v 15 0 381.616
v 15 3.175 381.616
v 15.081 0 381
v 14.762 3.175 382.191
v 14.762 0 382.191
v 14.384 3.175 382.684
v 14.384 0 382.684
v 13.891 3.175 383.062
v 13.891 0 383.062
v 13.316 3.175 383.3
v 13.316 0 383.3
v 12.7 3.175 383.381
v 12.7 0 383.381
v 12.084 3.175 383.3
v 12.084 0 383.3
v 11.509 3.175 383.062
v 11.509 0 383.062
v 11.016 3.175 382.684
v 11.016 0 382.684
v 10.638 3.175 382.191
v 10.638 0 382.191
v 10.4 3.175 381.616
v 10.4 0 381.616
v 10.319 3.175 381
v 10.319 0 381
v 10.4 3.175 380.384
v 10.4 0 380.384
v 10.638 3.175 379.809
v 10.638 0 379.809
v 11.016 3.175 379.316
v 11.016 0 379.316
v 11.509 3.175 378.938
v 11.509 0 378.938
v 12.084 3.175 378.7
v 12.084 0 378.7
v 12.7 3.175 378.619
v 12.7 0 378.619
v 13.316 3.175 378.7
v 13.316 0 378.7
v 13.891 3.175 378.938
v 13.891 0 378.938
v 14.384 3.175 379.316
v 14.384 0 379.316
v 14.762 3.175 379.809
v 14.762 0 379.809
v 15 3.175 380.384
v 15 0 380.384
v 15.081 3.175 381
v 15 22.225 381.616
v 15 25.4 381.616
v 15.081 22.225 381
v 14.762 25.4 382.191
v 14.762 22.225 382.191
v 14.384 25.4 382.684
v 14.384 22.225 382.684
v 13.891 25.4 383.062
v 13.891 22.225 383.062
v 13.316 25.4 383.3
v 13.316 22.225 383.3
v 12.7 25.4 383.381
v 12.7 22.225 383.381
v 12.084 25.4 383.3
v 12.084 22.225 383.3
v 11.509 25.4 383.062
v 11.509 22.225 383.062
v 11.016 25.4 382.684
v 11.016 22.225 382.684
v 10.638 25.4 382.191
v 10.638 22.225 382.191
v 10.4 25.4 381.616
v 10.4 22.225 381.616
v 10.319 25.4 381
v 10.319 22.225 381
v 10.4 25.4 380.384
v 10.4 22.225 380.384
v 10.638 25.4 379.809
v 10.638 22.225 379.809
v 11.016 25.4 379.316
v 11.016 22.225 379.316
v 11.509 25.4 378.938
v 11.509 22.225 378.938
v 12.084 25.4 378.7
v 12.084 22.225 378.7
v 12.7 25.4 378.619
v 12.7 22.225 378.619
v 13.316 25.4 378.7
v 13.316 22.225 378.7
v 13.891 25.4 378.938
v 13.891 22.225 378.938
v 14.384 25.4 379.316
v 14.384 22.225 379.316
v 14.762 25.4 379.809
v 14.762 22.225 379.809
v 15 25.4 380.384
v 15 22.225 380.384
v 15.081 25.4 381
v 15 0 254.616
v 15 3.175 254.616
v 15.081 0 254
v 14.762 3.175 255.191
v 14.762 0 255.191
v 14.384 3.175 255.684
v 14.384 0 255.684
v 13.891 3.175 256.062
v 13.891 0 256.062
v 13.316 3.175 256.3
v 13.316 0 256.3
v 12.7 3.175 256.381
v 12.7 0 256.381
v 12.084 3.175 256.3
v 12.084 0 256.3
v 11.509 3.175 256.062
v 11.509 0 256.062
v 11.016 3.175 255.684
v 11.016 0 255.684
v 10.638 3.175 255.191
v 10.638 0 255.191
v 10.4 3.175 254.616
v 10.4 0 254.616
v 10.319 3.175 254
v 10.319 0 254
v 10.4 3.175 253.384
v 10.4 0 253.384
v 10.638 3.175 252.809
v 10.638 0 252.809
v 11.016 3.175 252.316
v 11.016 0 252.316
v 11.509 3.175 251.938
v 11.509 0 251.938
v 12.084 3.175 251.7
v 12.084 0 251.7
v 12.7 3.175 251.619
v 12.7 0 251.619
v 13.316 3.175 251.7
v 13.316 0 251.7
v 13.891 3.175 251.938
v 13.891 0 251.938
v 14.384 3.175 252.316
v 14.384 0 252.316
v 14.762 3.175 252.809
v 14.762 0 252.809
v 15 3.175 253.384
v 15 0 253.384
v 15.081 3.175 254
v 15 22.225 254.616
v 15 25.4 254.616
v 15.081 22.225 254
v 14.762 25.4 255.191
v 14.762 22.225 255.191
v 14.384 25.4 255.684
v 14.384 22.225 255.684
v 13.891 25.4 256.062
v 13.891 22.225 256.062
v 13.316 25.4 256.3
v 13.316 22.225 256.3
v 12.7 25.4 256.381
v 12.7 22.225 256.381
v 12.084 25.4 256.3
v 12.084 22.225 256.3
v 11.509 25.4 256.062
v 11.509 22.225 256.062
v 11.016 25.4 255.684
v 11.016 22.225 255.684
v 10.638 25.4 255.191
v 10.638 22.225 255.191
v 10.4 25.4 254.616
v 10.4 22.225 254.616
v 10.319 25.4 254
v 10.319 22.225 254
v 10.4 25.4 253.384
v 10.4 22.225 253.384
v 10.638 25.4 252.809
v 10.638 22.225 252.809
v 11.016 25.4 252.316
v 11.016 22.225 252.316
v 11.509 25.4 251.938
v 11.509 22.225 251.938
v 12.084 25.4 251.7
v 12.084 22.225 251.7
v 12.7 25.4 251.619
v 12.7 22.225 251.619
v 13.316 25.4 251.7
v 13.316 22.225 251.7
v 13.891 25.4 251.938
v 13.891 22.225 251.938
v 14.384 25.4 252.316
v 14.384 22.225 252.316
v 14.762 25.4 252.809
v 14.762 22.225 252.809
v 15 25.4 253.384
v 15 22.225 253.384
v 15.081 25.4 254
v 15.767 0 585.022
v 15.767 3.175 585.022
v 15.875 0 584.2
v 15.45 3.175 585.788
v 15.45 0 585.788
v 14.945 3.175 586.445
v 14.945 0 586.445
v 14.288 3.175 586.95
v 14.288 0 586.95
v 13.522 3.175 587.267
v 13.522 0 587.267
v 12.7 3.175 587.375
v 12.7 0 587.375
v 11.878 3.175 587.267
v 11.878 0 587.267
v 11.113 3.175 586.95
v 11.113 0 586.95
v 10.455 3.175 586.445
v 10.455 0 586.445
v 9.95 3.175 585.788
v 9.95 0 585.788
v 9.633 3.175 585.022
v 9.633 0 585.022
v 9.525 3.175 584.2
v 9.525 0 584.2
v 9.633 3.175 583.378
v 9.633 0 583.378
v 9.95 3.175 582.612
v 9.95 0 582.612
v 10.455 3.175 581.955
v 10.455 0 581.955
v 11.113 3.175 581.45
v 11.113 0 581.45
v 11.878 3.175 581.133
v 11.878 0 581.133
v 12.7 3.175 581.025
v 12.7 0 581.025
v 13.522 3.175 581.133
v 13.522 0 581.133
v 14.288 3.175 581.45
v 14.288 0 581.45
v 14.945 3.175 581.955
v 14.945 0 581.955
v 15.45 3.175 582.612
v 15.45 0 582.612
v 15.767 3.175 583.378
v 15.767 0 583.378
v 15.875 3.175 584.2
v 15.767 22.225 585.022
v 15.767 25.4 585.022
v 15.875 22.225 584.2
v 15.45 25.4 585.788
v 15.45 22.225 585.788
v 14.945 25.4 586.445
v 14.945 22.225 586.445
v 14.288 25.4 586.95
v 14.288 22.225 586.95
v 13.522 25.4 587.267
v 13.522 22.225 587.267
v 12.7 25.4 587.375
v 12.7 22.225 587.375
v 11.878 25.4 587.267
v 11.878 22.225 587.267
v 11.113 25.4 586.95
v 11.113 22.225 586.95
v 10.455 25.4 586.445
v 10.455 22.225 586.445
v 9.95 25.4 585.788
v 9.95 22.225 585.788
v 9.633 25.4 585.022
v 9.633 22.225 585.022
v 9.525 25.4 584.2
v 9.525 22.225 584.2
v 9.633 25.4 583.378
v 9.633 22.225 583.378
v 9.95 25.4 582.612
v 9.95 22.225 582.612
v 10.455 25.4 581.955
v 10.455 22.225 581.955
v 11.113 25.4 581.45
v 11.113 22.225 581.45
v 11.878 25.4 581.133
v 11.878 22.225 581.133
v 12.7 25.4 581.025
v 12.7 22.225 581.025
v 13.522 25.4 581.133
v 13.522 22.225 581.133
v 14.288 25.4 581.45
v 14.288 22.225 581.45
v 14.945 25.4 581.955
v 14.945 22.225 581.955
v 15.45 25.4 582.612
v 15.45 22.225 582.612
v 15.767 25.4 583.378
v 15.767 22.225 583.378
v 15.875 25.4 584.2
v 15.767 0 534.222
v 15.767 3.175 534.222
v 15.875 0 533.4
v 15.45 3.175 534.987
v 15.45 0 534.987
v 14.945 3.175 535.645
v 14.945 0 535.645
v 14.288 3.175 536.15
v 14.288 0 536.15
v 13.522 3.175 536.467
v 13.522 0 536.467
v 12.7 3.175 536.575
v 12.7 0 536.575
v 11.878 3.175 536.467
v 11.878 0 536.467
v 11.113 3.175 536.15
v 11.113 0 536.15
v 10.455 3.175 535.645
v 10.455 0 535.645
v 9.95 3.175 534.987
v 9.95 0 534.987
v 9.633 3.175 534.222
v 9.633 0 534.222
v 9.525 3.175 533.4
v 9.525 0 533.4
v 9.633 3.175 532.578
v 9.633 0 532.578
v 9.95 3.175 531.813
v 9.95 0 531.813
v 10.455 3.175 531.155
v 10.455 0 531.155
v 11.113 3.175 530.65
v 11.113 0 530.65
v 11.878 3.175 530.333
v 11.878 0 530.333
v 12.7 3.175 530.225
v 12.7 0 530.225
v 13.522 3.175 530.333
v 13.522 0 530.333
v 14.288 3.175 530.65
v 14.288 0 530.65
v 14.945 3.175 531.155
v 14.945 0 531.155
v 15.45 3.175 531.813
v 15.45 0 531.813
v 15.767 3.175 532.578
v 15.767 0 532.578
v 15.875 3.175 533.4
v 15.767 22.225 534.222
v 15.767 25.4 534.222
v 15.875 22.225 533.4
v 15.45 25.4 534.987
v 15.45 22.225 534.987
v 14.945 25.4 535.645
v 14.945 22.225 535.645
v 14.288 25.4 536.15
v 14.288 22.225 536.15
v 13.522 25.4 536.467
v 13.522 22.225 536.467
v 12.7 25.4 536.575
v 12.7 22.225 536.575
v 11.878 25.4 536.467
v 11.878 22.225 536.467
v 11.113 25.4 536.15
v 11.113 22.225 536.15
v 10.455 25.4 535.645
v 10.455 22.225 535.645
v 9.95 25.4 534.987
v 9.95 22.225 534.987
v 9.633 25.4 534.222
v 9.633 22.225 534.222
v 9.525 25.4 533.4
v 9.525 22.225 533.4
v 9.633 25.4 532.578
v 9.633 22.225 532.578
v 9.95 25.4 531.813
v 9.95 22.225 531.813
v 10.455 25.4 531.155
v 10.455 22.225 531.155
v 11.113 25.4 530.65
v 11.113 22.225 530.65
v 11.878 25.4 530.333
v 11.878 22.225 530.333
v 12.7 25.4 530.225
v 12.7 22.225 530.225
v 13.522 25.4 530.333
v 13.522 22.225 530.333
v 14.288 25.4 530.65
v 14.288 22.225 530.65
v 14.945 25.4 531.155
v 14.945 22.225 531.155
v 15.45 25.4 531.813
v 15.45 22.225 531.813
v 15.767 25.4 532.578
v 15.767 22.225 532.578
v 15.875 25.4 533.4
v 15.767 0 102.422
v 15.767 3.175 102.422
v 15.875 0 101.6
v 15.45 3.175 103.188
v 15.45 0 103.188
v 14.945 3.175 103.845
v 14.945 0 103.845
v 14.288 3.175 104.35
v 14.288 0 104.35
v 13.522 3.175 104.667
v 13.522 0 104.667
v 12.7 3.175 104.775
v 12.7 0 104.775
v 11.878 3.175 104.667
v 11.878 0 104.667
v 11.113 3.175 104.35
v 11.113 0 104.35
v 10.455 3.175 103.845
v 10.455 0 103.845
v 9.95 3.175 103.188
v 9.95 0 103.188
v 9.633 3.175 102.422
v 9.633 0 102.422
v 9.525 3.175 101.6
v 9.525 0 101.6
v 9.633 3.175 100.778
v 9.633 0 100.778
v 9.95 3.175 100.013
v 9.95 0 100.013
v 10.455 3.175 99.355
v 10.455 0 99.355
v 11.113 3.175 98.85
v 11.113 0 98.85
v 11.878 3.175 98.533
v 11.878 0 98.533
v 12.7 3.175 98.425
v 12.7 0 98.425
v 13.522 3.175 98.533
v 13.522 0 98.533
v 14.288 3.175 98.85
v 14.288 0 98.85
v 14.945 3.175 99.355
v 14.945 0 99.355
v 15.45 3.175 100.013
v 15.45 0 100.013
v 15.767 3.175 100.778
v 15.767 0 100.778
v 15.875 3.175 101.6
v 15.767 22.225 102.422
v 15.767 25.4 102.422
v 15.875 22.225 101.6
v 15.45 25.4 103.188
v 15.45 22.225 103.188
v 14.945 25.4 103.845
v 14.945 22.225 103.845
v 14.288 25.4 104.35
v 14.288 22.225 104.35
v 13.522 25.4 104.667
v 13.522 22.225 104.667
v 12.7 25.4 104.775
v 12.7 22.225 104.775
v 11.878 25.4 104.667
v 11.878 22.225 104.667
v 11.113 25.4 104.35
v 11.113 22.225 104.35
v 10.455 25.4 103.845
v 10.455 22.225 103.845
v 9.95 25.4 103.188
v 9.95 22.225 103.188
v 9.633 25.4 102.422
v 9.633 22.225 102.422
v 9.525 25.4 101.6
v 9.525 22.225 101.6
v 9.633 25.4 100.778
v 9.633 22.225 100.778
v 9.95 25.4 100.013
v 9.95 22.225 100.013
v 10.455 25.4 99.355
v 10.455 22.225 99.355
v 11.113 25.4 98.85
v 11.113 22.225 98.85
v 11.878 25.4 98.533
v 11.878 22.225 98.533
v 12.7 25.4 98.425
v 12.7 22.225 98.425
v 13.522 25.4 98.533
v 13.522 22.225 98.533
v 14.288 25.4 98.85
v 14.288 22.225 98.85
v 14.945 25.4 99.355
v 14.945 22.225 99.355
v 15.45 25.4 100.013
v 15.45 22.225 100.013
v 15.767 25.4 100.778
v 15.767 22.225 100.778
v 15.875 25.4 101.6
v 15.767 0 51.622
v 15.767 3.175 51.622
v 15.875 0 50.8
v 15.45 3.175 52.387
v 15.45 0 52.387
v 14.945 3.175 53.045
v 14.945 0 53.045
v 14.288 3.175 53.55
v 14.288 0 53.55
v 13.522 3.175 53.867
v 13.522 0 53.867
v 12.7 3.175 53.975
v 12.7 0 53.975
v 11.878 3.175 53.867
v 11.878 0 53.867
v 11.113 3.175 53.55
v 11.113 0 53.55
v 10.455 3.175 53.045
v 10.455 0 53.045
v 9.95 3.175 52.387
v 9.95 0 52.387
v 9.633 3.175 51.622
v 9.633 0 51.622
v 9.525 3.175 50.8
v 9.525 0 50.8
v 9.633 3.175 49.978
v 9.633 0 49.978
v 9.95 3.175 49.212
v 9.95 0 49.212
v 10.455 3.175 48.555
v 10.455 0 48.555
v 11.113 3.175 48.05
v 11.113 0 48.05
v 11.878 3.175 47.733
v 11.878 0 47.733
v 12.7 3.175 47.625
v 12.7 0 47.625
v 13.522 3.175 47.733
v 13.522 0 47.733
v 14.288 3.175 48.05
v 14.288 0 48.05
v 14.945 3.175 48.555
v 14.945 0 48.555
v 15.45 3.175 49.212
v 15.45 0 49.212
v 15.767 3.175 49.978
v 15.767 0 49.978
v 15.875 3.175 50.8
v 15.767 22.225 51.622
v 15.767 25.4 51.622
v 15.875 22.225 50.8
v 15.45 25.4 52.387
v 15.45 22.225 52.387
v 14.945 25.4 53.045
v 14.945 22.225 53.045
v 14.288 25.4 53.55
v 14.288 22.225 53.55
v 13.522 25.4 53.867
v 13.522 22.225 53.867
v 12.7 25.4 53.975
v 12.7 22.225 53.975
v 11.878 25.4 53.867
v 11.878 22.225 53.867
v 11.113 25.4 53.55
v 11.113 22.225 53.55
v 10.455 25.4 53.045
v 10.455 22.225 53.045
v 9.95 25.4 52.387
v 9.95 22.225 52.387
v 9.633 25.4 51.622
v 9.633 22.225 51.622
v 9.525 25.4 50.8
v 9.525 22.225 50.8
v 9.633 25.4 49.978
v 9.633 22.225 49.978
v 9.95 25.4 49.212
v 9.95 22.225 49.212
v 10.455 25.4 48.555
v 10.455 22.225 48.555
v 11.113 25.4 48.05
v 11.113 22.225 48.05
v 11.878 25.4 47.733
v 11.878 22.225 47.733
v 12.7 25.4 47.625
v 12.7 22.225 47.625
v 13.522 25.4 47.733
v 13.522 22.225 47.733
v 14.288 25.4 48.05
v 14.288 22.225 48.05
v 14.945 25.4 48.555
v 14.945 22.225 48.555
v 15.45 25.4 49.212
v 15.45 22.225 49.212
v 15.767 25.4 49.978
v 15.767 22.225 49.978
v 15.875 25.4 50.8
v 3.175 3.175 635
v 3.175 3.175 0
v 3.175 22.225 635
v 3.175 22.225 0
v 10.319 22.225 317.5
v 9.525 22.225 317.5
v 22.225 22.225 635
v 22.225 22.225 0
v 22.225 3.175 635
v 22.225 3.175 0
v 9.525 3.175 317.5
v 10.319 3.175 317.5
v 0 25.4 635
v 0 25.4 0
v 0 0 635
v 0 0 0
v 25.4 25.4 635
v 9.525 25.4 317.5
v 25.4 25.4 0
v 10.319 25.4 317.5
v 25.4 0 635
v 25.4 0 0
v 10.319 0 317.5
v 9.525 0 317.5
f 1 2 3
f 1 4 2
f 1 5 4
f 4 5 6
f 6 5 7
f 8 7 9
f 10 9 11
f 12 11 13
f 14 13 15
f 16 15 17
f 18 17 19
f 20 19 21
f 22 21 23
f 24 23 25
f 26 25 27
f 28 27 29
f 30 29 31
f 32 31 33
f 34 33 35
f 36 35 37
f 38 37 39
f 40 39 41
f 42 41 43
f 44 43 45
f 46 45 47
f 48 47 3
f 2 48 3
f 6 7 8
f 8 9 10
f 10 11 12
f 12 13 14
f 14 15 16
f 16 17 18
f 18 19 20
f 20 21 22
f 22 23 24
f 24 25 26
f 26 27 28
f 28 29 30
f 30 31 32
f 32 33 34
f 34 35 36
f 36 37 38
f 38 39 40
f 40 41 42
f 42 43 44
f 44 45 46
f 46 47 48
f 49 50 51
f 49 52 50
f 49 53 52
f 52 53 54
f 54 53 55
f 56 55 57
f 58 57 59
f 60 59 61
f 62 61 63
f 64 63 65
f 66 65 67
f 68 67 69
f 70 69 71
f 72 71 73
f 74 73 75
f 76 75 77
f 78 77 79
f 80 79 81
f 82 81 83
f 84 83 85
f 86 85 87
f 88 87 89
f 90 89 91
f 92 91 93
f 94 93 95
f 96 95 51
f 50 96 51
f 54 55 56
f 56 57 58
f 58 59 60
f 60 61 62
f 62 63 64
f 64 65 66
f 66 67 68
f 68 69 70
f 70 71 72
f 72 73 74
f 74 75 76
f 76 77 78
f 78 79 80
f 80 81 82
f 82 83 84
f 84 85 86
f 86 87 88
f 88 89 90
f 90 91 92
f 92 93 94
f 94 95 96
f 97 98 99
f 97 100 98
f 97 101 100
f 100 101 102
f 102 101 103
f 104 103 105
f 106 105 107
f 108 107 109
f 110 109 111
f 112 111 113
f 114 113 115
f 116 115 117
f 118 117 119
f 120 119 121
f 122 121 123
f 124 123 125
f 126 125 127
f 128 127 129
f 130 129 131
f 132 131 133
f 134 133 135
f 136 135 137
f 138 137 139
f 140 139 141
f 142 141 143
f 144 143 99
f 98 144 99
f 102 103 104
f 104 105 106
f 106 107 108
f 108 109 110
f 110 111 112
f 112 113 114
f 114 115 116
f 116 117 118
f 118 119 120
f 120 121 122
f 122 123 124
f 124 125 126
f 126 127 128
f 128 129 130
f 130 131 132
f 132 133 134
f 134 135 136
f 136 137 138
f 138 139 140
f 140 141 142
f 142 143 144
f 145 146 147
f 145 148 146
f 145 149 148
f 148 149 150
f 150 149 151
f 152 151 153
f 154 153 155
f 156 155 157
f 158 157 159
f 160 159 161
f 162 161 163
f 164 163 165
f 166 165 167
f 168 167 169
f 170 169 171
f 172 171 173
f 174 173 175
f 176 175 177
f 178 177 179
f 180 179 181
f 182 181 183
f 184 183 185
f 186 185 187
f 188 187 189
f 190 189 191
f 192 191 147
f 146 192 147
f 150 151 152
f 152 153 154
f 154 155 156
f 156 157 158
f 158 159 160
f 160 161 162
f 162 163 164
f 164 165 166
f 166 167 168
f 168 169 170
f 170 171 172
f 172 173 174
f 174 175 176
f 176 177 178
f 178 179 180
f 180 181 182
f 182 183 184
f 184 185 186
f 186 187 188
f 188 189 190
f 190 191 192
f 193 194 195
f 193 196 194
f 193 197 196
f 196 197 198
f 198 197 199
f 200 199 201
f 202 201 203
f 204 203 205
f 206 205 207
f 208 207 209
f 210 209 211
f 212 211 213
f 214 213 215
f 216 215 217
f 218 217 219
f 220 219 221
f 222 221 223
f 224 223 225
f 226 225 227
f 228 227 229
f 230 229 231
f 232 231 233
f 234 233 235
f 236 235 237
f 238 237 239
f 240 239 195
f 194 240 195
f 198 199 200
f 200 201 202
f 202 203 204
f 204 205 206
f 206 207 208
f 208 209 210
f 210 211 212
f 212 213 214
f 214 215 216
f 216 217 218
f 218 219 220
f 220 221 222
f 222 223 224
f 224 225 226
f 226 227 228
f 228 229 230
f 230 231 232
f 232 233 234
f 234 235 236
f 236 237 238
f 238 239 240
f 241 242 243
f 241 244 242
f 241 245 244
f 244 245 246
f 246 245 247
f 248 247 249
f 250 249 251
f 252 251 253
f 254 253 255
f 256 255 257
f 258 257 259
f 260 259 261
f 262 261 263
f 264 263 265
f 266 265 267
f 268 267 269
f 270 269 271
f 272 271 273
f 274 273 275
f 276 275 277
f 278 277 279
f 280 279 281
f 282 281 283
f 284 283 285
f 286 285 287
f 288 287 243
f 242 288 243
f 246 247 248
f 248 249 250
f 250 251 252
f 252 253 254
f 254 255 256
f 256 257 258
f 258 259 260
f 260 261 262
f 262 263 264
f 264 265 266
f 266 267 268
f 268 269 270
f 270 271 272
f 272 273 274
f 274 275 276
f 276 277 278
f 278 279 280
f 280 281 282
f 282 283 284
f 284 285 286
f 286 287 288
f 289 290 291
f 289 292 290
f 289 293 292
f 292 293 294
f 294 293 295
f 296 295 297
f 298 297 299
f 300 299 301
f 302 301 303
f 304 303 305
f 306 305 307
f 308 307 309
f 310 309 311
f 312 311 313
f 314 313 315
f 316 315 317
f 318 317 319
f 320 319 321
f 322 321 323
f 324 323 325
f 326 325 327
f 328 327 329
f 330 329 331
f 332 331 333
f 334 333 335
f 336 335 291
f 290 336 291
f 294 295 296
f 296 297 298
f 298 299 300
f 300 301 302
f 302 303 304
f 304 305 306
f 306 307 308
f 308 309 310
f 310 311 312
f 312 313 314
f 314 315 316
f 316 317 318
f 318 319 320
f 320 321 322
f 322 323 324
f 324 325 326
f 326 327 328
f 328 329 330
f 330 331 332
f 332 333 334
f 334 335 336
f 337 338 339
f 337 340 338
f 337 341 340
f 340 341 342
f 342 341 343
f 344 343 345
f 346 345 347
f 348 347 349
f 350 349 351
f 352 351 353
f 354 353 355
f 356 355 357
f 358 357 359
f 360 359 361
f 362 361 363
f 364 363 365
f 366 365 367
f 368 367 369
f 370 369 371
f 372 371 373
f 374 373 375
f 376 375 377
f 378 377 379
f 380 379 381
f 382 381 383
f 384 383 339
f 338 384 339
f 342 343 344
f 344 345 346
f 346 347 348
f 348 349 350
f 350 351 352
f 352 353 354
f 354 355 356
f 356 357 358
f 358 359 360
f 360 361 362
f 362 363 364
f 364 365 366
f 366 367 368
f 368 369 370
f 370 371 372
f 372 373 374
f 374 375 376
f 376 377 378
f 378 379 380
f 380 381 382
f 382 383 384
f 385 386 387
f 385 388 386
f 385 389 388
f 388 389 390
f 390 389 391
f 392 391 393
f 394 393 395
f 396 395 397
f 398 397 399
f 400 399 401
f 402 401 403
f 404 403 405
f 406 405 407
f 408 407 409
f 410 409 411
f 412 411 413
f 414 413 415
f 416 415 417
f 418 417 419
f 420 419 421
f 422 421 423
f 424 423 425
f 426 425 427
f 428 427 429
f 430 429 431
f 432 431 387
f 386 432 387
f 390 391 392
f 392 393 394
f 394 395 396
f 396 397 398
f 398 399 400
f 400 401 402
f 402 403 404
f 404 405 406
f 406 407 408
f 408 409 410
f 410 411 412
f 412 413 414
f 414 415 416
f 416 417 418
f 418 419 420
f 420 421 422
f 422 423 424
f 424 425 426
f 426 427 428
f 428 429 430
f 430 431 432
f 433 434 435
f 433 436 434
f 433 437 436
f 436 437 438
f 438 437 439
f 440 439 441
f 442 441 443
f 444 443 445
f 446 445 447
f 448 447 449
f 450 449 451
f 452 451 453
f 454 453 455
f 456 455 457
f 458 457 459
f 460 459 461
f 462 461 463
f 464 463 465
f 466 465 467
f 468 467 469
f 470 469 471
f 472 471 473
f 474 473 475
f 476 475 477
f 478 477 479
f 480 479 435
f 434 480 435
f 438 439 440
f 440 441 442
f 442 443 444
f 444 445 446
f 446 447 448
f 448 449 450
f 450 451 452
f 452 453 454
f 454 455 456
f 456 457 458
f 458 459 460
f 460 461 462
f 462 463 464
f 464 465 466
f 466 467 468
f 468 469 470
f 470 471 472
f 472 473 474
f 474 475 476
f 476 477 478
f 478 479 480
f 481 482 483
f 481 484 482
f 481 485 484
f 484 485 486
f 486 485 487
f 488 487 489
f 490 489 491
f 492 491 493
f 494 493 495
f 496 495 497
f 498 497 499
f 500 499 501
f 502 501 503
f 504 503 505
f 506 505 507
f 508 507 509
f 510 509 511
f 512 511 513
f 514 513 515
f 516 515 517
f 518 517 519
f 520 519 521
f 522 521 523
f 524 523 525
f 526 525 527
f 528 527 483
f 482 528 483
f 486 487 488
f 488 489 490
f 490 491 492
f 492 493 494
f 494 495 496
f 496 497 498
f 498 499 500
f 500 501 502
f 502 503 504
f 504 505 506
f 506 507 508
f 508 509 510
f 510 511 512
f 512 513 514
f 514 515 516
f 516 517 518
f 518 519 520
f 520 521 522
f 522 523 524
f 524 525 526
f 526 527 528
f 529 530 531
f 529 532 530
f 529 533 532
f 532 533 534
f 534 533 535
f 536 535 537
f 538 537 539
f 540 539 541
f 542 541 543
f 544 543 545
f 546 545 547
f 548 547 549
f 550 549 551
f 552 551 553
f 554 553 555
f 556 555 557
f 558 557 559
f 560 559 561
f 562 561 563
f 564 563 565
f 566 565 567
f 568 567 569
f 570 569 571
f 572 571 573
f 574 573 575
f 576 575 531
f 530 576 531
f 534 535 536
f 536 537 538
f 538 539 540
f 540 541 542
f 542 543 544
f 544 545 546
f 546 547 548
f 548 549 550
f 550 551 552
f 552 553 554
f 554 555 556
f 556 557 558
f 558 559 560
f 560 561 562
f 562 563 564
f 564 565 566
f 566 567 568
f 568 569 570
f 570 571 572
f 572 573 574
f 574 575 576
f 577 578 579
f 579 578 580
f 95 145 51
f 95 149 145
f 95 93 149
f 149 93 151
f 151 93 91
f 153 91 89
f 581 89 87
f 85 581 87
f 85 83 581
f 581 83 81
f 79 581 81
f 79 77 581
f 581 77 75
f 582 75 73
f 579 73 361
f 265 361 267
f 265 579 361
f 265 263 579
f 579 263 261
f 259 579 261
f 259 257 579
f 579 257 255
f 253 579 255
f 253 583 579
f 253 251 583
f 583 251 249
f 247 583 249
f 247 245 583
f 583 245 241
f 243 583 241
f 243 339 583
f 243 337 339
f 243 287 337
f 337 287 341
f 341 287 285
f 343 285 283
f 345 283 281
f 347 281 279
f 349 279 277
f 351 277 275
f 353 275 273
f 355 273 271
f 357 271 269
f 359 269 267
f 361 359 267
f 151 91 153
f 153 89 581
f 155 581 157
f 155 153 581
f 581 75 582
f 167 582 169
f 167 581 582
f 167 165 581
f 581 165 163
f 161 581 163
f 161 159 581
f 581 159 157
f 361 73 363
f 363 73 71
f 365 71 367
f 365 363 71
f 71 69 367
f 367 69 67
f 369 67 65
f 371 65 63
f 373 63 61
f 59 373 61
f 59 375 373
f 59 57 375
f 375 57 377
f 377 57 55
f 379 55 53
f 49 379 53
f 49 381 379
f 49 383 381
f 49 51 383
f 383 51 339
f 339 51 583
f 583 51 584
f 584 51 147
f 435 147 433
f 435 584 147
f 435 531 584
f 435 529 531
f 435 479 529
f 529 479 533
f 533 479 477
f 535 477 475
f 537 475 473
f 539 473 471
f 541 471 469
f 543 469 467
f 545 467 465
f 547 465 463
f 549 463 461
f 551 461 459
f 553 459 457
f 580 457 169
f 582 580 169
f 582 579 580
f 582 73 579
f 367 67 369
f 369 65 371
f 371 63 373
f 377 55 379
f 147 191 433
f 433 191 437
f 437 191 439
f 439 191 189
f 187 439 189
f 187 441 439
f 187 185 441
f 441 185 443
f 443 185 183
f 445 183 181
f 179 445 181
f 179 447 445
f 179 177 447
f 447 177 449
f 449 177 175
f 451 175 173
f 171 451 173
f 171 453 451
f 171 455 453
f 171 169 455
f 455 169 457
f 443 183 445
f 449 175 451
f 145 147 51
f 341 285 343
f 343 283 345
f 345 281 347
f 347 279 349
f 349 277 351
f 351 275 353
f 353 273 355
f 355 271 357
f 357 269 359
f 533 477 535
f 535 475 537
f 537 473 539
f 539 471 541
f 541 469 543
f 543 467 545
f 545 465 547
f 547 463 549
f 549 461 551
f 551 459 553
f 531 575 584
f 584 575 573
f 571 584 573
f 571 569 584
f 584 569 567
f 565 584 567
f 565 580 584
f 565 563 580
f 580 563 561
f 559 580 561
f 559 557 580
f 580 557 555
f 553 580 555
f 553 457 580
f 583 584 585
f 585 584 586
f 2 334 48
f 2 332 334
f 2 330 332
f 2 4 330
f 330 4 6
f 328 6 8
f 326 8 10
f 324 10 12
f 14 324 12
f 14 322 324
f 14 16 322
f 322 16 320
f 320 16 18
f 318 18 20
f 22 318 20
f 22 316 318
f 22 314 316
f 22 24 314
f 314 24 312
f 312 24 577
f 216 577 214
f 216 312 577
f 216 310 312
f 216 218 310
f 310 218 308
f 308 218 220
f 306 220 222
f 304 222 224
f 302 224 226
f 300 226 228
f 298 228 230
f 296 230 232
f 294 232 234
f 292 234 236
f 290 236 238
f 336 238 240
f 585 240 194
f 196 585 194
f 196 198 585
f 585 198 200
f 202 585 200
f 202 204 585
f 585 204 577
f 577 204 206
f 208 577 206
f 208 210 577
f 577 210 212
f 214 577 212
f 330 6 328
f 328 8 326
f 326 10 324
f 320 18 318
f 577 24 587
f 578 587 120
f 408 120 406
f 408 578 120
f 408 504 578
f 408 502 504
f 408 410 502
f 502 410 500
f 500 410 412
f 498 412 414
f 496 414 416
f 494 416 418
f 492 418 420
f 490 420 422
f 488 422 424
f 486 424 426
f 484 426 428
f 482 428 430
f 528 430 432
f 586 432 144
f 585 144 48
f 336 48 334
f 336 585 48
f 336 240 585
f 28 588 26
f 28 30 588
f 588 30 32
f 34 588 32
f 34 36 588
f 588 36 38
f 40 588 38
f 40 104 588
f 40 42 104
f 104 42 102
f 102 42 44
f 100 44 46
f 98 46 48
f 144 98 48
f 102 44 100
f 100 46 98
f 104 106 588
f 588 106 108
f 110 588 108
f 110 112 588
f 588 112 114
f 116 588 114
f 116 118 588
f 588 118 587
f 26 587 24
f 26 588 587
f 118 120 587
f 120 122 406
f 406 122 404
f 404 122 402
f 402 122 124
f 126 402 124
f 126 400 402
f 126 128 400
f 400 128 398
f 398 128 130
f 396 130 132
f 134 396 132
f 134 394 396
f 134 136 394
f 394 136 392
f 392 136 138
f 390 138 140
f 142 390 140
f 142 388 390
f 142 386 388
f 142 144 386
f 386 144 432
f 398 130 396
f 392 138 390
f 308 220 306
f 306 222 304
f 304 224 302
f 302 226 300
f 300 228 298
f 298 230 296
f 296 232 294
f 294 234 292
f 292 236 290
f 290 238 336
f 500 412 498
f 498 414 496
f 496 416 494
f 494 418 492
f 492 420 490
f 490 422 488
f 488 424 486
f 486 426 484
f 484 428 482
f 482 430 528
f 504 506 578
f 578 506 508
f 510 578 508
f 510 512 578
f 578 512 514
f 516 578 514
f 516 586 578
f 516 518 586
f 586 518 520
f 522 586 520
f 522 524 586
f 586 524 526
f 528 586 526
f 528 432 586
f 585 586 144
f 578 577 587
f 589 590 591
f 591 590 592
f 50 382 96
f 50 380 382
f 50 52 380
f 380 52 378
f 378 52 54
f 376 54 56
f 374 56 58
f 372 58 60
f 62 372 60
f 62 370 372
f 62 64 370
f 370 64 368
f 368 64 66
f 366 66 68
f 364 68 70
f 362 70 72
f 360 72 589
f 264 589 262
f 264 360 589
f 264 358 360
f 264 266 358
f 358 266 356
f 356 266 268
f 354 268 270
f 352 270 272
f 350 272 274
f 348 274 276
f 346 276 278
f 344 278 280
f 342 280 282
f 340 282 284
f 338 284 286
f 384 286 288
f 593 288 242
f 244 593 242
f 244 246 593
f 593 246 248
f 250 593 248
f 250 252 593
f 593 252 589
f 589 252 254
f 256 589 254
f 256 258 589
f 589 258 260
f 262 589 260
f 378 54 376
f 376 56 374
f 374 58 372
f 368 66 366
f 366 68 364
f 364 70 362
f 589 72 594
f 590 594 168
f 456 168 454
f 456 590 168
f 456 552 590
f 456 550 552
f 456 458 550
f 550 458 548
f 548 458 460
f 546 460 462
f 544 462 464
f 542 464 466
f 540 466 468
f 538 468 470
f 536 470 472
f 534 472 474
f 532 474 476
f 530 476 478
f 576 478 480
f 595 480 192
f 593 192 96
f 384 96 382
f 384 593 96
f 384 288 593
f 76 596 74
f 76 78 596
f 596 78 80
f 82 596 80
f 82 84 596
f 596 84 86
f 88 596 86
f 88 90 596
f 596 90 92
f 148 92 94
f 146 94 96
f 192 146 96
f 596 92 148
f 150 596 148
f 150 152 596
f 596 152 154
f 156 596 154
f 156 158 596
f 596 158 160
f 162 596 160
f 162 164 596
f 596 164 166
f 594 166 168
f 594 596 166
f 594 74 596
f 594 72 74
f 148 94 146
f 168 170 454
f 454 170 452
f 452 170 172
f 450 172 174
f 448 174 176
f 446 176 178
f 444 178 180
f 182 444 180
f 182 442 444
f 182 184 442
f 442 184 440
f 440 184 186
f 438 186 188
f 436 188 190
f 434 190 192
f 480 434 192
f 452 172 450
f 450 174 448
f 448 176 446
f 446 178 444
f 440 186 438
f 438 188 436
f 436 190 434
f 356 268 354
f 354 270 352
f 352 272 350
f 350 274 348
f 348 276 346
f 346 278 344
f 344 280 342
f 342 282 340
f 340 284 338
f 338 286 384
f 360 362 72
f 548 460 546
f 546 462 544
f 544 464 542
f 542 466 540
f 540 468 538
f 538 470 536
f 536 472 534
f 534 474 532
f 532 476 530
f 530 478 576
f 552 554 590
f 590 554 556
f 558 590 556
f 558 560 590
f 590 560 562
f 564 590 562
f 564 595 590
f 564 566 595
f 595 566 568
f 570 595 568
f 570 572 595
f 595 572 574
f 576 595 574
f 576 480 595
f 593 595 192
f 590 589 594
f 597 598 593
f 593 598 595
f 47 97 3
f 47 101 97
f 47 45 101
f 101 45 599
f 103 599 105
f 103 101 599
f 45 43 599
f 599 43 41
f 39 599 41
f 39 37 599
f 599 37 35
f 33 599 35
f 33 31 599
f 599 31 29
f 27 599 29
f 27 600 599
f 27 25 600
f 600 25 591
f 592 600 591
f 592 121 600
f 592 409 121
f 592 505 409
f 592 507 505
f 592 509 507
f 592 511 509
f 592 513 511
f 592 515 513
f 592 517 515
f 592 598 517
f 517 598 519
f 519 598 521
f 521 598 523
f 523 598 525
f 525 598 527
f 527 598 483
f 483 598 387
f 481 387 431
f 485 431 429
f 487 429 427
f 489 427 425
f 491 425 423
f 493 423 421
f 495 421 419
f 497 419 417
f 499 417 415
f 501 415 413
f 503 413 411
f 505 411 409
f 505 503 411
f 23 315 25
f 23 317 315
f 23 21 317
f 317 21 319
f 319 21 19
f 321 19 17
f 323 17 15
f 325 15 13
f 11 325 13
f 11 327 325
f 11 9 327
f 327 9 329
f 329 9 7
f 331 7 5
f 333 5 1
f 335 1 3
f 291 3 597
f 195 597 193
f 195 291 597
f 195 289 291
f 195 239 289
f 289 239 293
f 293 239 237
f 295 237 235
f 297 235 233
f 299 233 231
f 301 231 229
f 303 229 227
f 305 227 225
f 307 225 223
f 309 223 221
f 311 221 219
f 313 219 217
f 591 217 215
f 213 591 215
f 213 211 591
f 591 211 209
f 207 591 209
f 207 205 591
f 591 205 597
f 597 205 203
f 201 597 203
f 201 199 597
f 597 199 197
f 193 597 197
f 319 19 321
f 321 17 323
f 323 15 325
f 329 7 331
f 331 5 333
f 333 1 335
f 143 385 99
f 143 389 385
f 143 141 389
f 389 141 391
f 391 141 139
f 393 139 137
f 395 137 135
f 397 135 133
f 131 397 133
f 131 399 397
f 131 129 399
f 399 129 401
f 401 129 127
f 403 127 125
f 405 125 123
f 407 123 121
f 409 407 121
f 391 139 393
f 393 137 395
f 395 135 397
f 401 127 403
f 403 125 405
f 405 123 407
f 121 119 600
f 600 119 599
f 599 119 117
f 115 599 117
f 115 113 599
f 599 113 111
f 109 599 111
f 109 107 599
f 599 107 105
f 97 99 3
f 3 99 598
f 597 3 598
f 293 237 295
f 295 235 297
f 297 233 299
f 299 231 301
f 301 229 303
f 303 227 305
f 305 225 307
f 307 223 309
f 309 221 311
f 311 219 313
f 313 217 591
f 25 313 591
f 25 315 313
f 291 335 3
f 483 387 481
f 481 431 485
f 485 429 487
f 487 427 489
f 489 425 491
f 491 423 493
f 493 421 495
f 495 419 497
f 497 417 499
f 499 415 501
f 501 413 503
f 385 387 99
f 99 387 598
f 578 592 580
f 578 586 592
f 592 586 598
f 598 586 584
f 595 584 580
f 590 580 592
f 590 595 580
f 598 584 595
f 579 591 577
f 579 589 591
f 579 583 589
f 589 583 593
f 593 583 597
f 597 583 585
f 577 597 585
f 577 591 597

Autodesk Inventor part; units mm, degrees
ref_plane "YZ Plane" through (0, 0, 0) normal (1, 0, 0) x (0, 1, 0)
ref_plane "XZ Plane" through (0, 0, 0) normal (0, 1, 0) x (-1, 0, 0)
ref_plane "XY Plane" through (0, 0, 0) normal (0, 0, 1) x (1, 0, 0)
sketch "Sketch1" plane through (0, 0, 0) normal (0, 0, 1) x (1, 0, 0)
  line L0 (0, 0) -> (25.4, 0)
  line L1 (25.4, 0) -> (25.4, 25.4)
  line L2 (25.4, 25.4) -> (0, 25.4)
  line L3 (0, 25.4) -> (0, 0)
  dimension "d0" = 25.4
  dimension "d1" = 25.4
extrude "Extrusion1" add sketch "Sketch1" along normal blind 635
shell "Shell1" thickness 3.175 removed faces 2 at (8.4667, 16.9333, 0) at (16.9333, 8.4667, 635)
sketch "Sketch2" plane through (0, 25.4, 0) normal (0, 1, 0) x (1, 0, 0)
  line L0 (0, -635) -> (25.4, -635) projected
  line L1 (25.4, 0) -> (0, 0) projected
  line L2 (0, 0) -> (0, -635) projected
  circle A0 centre (12.7, -50.8) radius 3.175
  circle A1 centre (12.7, -101.6) radius 3.175
  circle A2 centre (12.7, -533.4) radius 3.175
  circle A3 centre (12.7, -584.2) radius 3.175
  dimension "d7" = 50.8
  dimension "d8" = 50.8
  dimension "d9" = 12.7
  dimension "d10" = 12.7
  dimension "d11" = 6.35
  dimension "d12" = 6.35
  dimension "d13" = 12.7
  dimension "d14" = 12.7
  dimension "d15" = 50.8
  dimension "d16" = 50.8
  dimension "d17" = 6.35
  dimension "d18" = 6.35
extrude "Extrusion2" cut sketch "Sketch2" against normal through all
sketch "Sketch3" plane through (0, 25.4, 0) normal (0, 1, 0) x (1, 0, 0)
  line L0 (25.4, 0) -> (0, 0) projected
  line L1 (0, 0) -> (0, -635) projected
  line L2 (12.7, 0) -> (12.7, -254) construction
  line L3 (12.7, -254) -> (12.7, -381) construction
  circle A0 centre (12.7, -254) radius 2.3813
  circle A1 centre (12.7, -381) radius 2.3813
  dimension "d21" = 4.7625
  dimension "d22" = 4.7625
  dimension "d23" = 127
  dimension "d24" = 254
extrude "Extrusion3" cut sketch "Sketch3" against normal through all
properties part number "DriveTrain_SideRail" material "Aluminum-6061"
